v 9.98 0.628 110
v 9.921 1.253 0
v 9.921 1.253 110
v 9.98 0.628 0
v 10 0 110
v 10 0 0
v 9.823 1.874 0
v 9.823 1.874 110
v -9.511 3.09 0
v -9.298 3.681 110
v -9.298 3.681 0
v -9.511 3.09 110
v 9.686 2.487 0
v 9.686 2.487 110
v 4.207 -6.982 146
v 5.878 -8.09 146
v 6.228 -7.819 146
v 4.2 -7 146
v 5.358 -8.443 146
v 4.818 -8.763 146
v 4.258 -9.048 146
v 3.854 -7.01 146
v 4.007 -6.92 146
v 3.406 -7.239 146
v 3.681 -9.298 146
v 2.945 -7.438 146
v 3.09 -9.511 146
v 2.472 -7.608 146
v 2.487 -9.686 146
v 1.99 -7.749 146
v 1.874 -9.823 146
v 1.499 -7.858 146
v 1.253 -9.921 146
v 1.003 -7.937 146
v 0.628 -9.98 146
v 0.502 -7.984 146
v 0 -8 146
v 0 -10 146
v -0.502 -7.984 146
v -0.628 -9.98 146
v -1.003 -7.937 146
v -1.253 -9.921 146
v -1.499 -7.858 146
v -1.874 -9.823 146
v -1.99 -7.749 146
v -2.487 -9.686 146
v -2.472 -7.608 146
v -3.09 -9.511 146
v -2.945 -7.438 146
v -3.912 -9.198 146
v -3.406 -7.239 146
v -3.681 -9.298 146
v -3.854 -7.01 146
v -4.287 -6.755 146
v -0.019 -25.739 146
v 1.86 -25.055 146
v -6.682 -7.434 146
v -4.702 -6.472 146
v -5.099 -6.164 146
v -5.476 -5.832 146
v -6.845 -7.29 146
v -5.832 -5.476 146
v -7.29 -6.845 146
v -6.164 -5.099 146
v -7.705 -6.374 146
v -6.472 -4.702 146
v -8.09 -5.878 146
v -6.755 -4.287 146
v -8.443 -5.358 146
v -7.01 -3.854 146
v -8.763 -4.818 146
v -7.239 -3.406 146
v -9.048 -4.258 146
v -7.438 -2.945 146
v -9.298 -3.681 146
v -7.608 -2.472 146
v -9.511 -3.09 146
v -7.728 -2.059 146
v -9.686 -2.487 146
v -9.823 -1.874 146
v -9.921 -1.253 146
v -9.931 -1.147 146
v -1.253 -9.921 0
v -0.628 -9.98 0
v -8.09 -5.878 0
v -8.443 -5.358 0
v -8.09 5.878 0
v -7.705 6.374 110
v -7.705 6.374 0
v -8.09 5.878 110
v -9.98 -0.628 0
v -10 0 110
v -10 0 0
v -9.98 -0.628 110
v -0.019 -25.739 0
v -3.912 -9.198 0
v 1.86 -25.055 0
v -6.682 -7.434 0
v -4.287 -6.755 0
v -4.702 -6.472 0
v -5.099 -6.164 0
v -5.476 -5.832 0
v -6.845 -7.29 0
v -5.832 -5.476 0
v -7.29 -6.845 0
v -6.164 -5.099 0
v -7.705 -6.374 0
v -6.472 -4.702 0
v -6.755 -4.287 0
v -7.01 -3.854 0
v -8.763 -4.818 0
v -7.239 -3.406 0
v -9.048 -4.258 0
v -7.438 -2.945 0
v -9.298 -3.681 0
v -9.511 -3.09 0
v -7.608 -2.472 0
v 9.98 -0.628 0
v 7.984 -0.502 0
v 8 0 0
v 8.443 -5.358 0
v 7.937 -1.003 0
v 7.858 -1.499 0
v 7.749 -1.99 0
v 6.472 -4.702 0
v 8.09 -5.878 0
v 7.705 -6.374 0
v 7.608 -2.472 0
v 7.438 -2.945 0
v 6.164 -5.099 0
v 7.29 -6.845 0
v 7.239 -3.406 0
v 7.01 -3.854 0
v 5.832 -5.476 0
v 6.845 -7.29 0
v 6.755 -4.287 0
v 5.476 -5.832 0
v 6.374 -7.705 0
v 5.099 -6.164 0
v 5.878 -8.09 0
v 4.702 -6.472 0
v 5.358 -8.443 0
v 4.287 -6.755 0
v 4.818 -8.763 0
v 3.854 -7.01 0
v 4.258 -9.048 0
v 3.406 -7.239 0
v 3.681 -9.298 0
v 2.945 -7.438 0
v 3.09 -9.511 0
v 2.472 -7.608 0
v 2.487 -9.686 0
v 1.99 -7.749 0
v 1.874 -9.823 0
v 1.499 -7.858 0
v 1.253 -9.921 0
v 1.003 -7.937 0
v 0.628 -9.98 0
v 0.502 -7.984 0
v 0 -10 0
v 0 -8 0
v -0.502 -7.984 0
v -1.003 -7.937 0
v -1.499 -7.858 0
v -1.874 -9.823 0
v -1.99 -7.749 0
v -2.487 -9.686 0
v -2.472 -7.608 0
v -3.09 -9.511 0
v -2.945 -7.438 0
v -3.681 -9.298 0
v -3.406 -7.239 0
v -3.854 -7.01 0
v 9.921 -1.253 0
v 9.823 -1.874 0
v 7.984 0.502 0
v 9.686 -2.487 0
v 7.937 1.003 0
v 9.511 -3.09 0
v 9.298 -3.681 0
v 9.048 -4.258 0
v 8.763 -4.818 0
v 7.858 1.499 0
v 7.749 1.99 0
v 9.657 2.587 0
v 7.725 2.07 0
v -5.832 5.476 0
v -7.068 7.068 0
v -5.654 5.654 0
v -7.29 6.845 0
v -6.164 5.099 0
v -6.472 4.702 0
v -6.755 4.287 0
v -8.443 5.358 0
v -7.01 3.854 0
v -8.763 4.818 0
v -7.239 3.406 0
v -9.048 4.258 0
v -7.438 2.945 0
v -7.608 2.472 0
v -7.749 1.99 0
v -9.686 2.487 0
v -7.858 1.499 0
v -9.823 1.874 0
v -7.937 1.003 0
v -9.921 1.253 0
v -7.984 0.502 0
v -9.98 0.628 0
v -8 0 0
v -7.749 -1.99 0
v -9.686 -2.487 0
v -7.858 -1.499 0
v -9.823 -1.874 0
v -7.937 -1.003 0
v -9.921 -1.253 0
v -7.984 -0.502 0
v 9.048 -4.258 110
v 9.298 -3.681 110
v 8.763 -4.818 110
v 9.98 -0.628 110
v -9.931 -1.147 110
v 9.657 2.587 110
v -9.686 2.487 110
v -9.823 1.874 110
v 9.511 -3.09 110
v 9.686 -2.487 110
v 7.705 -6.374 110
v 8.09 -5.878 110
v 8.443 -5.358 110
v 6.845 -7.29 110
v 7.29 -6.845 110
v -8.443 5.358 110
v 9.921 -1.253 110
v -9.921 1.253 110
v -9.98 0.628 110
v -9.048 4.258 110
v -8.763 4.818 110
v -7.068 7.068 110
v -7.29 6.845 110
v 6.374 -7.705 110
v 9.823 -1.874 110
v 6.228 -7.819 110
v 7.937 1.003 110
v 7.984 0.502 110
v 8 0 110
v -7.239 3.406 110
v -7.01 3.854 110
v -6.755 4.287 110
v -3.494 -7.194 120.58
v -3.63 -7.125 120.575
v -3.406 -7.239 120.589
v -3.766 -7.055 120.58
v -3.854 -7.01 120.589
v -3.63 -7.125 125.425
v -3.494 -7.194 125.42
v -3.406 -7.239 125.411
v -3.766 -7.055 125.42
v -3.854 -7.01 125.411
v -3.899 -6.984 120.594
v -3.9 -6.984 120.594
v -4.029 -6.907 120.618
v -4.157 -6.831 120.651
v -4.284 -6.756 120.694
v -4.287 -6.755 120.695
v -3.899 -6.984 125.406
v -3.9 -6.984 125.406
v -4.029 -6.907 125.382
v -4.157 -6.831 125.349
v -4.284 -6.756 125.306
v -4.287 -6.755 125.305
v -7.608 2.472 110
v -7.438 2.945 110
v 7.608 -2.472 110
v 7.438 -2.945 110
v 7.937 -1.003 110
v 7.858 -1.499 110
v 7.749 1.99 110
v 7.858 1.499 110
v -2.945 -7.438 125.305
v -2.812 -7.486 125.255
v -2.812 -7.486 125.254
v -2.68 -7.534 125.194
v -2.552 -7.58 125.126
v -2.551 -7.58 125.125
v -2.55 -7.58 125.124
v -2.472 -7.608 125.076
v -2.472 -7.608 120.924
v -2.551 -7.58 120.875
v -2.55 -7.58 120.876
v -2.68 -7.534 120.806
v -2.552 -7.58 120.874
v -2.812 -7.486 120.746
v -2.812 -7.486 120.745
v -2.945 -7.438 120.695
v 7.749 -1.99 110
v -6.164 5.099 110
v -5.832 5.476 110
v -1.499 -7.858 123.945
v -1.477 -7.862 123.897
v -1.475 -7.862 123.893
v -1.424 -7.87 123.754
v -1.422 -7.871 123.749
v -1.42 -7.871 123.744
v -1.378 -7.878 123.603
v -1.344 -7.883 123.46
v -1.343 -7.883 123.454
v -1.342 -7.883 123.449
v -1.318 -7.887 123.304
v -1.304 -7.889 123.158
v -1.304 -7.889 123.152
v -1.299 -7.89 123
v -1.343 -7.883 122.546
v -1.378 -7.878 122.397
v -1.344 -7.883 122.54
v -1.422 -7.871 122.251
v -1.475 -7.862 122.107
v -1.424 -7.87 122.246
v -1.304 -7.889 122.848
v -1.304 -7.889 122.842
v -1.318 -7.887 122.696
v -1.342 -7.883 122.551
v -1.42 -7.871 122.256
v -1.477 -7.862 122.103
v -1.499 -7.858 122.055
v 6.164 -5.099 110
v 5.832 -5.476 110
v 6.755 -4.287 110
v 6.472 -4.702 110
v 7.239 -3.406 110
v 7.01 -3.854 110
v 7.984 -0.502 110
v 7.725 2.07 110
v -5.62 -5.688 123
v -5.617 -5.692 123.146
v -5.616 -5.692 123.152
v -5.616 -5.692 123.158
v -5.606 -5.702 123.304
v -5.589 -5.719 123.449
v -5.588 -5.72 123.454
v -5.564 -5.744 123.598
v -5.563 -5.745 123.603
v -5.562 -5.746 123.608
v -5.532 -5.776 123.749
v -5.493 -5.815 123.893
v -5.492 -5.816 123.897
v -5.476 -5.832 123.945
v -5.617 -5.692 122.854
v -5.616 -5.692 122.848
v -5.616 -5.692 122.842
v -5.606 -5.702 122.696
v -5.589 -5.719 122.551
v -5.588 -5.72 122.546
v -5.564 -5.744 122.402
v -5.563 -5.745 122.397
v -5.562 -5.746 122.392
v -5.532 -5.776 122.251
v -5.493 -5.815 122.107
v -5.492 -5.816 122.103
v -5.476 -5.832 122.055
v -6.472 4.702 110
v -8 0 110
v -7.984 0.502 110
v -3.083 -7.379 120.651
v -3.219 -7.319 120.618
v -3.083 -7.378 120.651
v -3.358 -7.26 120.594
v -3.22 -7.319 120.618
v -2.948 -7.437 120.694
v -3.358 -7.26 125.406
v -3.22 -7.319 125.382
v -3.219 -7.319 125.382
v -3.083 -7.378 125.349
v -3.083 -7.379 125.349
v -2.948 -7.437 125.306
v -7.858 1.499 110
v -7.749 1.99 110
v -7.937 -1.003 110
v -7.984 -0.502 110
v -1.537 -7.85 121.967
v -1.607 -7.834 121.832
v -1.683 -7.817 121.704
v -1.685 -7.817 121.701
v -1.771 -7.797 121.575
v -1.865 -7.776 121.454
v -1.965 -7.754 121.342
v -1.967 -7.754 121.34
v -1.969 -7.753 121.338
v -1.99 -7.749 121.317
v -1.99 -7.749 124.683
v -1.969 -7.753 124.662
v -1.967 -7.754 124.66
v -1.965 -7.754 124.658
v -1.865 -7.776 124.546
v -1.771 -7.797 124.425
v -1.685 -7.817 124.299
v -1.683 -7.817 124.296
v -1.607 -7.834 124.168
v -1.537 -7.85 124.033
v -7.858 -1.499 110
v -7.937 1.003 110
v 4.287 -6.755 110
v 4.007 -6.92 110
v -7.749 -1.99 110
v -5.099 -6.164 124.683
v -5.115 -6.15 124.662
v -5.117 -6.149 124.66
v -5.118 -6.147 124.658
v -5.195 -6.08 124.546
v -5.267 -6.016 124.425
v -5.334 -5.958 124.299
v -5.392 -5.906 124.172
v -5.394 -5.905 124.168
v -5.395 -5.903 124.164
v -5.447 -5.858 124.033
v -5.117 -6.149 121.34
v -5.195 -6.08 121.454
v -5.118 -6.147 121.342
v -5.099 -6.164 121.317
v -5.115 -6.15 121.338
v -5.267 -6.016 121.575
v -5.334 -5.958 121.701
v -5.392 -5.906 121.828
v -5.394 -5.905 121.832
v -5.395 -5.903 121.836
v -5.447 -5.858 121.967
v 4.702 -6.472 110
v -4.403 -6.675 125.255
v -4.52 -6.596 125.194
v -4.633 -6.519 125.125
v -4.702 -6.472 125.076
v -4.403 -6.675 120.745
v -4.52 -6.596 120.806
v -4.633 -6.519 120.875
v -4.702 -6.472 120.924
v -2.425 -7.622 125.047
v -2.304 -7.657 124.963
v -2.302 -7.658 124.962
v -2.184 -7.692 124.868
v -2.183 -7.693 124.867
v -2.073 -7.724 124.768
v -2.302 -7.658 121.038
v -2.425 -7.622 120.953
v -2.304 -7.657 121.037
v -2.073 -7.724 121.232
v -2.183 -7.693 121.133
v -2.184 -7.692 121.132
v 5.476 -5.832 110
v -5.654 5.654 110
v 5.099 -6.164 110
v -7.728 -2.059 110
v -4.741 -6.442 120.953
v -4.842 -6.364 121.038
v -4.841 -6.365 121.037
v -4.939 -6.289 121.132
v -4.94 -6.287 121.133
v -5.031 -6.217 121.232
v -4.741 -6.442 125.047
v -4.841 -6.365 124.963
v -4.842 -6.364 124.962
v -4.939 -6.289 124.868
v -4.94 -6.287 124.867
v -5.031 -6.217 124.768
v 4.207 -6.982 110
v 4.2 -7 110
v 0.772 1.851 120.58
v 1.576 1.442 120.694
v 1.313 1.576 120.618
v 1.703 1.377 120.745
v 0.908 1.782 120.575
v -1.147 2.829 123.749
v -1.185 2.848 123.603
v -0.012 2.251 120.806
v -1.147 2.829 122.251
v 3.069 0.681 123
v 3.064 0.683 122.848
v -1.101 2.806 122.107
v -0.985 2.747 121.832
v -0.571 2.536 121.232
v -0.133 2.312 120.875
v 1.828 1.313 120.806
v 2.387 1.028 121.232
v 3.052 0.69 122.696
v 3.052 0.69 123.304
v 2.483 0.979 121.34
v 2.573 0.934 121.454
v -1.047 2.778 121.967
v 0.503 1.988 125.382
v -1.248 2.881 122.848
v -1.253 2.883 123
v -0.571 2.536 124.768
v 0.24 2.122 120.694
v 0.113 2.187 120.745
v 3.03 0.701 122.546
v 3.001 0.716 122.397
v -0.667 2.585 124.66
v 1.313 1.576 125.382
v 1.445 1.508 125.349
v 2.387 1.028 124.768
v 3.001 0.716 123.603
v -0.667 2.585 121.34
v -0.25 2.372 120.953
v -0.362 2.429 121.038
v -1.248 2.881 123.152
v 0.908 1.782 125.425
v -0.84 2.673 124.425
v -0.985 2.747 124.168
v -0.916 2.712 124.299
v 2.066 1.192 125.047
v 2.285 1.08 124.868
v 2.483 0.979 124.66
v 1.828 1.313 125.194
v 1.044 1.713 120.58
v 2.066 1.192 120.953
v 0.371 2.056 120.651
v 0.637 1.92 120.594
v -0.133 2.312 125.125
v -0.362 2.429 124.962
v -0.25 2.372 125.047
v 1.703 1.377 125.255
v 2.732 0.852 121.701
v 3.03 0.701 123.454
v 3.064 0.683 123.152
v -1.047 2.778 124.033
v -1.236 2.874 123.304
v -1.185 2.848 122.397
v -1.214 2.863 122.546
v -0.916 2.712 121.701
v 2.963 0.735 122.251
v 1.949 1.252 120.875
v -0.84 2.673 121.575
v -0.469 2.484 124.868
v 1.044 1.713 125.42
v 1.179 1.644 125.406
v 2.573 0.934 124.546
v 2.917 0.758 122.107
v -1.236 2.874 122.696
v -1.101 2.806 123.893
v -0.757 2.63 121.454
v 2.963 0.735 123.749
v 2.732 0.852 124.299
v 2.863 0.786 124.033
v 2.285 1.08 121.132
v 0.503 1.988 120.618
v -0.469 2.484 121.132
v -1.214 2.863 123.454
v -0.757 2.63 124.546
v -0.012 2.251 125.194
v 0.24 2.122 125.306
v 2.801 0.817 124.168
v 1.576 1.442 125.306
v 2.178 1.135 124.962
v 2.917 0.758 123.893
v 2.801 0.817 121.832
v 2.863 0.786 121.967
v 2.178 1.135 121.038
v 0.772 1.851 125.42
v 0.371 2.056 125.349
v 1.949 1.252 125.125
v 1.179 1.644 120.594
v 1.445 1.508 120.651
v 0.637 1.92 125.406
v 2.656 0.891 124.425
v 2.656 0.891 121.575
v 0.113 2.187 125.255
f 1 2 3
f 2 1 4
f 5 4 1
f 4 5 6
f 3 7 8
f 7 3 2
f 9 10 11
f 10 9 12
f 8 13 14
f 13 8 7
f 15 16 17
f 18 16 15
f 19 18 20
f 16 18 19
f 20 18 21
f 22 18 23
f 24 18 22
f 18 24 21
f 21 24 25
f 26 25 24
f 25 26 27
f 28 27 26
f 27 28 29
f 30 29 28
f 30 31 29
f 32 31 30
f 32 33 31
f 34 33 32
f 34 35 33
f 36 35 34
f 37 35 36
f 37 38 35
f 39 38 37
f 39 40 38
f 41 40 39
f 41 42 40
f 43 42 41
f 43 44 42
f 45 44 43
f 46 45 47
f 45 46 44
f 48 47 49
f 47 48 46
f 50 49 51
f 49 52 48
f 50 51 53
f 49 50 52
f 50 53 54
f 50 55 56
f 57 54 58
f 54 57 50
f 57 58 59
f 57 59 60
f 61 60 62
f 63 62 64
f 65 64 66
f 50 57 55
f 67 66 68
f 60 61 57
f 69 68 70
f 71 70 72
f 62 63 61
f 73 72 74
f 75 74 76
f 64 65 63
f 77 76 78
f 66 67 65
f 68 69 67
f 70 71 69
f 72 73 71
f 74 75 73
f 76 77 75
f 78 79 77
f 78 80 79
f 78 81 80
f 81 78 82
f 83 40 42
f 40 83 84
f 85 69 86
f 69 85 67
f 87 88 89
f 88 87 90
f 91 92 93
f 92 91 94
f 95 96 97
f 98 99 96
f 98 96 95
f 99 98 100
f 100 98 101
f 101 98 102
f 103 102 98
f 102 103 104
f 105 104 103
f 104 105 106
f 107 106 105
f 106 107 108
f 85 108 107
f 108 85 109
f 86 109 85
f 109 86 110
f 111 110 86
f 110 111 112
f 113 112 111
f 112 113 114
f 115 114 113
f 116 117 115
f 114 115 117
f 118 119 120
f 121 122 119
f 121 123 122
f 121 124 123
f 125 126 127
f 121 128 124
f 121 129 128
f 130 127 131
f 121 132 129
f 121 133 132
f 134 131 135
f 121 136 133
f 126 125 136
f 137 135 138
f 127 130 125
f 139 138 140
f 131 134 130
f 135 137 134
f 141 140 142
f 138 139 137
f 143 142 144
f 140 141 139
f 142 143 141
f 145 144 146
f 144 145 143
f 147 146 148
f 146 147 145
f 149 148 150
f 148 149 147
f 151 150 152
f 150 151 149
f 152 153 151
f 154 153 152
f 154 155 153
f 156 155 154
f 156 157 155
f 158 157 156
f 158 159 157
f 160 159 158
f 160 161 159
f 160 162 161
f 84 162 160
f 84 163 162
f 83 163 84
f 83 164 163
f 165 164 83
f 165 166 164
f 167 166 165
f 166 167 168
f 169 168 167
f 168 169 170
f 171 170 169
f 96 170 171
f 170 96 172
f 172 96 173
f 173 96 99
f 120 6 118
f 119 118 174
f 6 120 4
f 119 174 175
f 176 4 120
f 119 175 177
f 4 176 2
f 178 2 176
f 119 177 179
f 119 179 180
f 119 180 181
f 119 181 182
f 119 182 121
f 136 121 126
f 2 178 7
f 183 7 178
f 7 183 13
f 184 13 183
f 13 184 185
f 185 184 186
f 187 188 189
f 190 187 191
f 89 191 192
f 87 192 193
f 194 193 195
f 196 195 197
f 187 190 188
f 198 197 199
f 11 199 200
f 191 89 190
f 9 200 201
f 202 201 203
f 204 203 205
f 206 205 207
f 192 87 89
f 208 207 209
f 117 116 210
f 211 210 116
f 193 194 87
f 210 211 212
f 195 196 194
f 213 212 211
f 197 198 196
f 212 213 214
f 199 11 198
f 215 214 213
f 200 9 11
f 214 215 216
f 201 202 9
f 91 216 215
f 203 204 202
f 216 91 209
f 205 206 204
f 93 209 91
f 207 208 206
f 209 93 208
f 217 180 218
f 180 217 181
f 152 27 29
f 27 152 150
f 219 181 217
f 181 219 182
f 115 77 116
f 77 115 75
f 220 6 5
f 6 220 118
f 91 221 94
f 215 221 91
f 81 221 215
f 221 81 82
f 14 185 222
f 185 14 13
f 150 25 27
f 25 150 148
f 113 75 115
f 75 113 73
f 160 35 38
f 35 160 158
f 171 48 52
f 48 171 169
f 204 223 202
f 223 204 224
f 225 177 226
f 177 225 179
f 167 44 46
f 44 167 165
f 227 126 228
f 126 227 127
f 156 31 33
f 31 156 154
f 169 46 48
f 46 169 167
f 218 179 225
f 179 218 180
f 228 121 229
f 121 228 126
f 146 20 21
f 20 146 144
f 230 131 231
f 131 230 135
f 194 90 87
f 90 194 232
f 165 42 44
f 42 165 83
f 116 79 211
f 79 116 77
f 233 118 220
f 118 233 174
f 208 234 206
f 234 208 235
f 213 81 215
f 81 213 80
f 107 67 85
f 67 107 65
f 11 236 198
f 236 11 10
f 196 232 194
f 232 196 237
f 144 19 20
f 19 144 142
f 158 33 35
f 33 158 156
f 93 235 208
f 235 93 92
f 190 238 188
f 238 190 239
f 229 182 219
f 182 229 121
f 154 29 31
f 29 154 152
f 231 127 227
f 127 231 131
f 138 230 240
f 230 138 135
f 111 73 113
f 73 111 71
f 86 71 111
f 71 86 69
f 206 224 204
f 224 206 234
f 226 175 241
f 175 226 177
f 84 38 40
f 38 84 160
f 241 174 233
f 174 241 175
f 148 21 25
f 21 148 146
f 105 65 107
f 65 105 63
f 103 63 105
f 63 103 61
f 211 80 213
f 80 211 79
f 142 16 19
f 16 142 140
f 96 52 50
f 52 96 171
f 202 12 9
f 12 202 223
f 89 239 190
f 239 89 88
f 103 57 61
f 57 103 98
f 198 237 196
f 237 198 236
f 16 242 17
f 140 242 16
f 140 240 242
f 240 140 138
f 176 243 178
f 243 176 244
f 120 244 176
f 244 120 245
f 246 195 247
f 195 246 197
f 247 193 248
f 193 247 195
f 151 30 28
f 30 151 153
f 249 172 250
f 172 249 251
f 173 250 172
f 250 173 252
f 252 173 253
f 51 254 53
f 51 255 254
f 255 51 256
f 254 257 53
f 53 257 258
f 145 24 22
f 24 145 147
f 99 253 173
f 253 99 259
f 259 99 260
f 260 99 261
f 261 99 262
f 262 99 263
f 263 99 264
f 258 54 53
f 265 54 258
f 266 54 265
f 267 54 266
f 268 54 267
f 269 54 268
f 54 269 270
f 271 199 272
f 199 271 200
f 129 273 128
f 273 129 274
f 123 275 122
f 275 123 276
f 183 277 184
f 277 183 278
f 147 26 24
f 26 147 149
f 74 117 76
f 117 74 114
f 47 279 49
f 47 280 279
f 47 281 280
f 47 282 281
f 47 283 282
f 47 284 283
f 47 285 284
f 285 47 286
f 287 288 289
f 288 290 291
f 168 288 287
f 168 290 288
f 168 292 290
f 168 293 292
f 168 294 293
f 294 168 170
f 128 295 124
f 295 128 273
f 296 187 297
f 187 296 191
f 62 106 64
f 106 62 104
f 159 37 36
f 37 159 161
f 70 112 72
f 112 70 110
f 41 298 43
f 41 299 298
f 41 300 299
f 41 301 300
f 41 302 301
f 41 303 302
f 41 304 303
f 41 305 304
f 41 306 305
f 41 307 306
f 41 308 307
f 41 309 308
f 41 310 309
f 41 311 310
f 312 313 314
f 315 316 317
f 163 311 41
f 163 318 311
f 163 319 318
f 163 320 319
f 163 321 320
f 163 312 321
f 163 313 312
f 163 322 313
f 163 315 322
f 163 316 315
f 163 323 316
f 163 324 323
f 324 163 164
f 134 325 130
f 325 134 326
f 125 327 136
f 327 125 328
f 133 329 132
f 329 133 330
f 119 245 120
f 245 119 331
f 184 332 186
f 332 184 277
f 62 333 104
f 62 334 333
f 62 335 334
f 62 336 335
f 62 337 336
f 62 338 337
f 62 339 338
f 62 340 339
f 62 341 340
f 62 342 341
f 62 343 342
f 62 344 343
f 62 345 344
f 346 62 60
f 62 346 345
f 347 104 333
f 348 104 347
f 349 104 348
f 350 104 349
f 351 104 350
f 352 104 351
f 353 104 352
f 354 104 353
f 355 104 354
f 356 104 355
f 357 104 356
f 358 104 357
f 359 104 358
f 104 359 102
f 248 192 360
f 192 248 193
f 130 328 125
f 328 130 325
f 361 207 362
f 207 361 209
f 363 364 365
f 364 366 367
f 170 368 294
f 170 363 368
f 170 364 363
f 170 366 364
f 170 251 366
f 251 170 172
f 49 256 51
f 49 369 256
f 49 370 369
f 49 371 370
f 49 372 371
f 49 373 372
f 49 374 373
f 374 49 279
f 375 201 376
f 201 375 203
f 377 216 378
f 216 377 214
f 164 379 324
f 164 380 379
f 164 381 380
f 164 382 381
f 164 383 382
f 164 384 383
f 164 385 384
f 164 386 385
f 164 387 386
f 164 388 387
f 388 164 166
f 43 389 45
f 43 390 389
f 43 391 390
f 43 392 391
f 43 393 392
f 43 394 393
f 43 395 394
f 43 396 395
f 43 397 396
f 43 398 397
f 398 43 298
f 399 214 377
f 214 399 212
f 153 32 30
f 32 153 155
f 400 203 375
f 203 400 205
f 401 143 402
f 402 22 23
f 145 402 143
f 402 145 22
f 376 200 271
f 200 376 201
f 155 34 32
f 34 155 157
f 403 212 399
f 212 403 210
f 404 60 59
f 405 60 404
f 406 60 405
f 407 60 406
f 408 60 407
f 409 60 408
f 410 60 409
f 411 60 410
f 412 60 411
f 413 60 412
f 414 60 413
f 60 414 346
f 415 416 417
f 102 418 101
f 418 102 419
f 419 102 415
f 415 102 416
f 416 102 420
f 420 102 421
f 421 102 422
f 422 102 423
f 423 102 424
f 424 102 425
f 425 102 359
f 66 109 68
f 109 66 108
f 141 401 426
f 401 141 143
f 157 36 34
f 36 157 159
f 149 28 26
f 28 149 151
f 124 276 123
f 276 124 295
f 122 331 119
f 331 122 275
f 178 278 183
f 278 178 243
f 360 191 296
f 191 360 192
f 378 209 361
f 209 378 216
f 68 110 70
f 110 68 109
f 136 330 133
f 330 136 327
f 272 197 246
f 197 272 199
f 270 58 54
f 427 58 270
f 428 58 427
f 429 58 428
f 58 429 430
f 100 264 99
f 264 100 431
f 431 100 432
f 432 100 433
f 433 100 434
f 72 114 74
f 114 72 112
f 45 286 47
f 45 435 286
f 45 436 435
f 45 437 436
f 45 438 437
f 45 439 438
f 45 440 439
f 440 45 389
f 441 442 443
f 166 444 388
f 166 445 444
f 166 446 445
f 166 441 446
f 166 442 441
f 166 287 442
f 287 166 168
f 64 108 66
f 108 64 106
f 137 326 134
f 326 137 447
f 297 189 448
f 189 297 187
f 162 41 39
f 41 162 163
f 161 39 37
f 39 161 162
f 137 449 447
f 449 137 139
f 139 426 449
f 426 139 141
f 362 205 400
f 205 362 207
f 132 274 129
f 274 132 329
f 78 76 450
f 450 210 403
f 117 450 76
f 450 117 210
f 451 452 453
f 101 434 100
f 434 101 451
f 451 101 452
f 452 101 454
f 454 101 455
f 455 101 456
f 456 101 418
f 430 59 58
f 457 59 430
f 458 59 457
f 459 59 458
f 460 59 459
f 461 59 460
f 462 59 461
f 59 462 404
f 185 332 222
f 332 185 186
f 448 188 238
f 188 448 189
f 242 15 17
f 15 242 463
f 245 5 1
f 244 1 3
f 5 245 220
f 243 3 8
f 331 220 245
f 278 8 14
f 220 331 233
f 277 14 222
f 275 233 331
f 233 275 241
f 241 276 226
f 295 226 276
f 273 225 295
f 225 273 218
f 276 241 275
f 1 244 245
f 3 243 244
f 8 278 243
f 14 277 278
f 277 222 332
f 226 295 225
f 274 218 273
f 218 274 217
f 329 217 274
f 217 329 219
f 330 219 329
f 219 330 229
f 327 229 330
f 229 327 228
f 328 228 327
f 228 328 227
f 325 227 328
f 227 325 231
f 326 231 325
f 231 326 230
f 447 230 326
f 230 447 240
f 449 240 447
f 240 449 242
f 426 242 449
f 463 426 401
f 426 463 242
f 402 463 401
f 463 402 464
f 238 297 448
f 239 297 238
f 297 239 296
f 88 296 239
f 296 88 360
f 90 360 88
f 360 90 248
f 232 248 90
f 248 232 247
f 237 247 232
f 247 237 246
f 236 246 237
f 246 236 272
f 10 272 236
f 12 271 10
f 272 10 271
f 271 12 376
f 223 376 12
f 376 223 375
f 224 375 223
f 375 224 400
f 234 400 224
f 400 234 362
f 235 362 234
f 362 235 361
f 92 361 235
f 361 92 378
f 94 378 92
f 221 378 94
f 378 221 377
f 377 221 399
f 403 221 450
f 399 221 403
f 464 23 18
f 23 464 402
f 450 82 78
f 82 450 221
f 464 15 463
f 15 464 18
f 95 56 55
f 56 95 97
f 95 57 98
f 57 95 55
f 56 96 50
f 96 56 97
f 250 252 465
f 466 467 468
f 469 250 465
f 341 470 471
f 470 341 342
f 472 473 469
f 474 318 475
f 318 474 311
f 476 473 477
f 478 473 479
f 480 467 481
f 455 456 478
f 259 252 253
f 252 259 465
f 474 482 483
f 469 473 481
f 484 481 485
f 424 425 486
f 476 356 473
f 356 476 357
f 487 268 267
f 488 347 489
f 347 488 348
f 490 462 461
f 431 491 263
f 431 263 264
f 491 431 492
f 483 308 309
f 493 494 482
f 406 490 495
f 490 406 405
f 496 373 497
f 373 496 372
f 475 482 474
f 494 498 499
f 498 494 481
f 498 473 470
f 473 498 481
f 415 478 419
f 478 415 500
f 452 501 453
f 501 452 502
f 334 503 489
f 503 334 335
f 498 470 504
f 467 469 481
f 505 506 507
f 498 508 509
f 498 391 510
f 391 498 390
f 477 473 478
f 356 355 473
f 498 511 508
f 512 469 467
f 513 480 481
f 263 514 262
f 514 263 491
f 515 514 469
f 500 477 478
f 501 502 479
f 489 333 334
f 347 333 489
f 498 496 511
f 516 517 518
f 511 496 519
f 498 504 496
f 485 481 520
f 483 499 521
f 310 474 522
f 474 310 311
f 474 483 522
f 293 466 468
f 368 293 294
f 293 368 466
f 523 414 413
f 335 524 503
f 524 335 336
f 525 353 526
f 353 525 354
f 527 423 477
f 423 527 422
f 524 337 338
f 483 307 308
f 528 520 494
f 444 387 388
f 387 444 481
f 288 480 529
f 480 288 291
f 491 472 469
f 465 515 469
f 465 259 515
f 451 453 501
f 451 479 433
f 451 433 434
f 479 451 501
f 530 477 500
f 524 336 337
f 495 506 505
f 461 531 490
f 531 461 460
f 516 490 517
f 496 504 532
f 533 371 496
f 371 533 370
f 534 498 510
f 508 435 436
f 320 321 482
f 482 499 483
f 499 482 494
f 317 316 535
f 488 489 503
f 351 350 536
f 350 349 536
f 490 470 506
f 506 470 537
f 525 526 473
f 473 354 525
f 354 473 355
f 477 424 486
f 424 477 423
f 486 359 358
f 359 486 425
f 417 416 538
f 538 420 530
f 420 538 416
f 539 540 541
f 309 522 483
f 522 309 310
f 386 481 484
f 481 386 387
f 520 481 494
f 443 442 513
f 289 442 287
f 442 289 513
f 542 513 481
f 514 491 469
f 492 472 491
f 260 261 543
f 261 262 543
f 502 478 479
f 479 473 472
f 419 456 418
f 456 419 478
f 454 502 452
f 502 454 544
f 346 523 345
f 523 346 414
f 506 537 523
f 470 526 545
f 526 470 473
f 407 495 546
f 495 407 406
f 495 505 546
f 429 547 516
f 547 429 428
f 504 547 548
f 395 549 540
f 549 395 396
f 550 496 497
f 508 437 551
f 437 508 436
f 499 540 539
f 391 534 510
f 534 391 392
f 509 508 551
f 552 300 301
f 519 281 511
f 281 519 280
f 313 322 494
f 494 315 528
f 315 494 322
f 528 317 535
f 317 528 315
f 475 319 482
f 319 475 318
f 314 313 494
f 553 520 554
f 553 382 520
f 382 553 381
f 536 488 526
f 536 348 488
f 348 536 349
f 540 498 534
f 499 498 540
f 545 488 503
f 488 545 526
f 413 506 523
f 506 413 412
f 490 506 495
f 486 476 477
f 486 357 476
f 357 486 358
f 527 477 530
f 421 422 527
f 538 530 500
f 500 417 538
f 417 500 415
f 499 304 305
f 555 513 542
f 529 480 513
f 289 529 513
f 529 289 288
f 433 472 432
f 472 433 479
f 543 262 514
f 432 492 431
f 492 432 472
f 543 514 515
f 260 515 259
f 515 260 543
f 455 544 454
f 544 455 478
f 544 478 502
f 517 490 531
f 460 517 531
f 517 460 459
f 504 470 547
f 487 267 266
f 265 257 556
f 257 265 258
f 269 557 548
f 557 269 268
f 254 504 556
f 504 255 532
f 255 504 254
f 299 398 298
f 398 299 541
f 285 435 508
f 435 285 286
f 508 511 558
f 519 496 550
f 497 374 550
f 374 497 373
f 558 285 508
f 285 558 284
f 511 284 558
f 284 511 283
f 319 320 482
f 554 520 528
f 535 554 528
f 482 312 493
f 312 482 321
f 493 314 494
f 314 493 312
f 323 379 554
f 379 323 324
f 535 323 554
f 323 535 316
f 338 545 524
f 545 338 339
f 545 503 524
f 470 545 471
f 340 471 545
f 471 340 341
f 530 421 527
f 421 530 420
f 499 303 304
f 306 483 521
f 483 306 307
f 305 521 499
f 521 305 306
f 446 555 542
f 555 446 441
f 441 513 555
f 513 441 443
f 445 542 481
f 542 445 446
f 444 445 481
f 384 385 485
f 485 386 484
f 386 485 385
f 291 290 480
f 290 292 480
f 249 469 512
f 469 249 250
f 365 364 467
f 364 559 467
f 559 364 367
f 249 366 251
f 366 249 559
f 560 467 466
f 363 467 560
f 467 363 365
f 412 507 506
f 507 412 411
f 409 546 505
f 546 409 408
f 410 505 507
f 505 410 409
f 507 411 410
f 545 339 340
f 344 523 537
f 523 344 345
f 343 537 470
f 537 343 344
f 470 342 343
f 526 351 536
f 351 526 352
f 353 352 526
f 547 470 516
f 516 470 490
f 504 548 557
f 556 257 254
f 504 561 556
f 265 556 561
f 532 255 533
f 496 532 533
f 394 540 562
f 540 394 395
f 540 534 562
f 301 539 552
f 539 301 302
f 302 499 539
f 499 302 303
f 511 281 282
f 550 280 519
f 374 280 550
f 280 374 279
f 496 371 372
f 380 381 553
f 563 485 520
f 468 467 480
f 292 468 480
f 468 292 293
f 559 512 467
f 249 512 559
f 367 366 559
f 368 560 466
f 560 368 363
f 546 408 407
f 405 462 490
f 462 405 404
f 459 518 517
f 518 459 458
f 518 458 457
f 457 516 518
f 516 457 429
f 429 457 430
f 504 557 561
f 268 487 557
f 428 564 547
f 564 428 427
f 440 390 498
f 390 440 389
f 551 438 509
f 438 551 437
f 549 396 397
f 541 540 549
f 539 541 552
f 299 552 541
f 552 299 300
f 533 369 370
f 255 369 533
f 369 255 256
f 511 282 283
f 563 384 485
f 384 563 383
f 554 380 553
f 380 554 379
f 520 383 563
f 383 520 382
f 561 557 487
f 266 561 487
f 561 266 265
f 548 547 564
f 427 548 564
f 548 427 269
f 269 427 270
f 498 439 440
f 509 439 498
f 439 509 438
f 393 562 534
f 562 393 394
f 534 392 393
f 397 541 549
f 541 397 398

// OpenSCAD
union(){
    difference() {
        cylinder(h = 146, d = 20, $fn = 100);
        cylinder(h = 146, d = 16, $fn = 100);

        rotate([0, 0, 15]) {
            cube([10, 10, 120]);
        }
        rotate([0, 0, 45]) {
            cube([10, 10, 120]);
        }

        translate([9.2, -9.05, 110]){
            rotate([0, 0, 67.5]) {
                cube([17.4, 17.4, 46]);
            }
        }

        translate([4.2, -7, 110]){
            rotate([0, 0, 67.5]) {
                cube([17.4, 17.4, 46]);
            }
        }
    }

    // Wall
    translate([-2.5, -16, 73]) {
        rotate([0, 0, 110]) {
            cube([20, 2, 146], center = true);
        }
    }

    // Nipple
    translate([0, 0, 123]) {
        rotate([0, 90, 63]) {
            translate([0, 0, -8]) {
            cylinder(h = 10, d = 4.85, $fn = 100);
            }
        }
    }
}
